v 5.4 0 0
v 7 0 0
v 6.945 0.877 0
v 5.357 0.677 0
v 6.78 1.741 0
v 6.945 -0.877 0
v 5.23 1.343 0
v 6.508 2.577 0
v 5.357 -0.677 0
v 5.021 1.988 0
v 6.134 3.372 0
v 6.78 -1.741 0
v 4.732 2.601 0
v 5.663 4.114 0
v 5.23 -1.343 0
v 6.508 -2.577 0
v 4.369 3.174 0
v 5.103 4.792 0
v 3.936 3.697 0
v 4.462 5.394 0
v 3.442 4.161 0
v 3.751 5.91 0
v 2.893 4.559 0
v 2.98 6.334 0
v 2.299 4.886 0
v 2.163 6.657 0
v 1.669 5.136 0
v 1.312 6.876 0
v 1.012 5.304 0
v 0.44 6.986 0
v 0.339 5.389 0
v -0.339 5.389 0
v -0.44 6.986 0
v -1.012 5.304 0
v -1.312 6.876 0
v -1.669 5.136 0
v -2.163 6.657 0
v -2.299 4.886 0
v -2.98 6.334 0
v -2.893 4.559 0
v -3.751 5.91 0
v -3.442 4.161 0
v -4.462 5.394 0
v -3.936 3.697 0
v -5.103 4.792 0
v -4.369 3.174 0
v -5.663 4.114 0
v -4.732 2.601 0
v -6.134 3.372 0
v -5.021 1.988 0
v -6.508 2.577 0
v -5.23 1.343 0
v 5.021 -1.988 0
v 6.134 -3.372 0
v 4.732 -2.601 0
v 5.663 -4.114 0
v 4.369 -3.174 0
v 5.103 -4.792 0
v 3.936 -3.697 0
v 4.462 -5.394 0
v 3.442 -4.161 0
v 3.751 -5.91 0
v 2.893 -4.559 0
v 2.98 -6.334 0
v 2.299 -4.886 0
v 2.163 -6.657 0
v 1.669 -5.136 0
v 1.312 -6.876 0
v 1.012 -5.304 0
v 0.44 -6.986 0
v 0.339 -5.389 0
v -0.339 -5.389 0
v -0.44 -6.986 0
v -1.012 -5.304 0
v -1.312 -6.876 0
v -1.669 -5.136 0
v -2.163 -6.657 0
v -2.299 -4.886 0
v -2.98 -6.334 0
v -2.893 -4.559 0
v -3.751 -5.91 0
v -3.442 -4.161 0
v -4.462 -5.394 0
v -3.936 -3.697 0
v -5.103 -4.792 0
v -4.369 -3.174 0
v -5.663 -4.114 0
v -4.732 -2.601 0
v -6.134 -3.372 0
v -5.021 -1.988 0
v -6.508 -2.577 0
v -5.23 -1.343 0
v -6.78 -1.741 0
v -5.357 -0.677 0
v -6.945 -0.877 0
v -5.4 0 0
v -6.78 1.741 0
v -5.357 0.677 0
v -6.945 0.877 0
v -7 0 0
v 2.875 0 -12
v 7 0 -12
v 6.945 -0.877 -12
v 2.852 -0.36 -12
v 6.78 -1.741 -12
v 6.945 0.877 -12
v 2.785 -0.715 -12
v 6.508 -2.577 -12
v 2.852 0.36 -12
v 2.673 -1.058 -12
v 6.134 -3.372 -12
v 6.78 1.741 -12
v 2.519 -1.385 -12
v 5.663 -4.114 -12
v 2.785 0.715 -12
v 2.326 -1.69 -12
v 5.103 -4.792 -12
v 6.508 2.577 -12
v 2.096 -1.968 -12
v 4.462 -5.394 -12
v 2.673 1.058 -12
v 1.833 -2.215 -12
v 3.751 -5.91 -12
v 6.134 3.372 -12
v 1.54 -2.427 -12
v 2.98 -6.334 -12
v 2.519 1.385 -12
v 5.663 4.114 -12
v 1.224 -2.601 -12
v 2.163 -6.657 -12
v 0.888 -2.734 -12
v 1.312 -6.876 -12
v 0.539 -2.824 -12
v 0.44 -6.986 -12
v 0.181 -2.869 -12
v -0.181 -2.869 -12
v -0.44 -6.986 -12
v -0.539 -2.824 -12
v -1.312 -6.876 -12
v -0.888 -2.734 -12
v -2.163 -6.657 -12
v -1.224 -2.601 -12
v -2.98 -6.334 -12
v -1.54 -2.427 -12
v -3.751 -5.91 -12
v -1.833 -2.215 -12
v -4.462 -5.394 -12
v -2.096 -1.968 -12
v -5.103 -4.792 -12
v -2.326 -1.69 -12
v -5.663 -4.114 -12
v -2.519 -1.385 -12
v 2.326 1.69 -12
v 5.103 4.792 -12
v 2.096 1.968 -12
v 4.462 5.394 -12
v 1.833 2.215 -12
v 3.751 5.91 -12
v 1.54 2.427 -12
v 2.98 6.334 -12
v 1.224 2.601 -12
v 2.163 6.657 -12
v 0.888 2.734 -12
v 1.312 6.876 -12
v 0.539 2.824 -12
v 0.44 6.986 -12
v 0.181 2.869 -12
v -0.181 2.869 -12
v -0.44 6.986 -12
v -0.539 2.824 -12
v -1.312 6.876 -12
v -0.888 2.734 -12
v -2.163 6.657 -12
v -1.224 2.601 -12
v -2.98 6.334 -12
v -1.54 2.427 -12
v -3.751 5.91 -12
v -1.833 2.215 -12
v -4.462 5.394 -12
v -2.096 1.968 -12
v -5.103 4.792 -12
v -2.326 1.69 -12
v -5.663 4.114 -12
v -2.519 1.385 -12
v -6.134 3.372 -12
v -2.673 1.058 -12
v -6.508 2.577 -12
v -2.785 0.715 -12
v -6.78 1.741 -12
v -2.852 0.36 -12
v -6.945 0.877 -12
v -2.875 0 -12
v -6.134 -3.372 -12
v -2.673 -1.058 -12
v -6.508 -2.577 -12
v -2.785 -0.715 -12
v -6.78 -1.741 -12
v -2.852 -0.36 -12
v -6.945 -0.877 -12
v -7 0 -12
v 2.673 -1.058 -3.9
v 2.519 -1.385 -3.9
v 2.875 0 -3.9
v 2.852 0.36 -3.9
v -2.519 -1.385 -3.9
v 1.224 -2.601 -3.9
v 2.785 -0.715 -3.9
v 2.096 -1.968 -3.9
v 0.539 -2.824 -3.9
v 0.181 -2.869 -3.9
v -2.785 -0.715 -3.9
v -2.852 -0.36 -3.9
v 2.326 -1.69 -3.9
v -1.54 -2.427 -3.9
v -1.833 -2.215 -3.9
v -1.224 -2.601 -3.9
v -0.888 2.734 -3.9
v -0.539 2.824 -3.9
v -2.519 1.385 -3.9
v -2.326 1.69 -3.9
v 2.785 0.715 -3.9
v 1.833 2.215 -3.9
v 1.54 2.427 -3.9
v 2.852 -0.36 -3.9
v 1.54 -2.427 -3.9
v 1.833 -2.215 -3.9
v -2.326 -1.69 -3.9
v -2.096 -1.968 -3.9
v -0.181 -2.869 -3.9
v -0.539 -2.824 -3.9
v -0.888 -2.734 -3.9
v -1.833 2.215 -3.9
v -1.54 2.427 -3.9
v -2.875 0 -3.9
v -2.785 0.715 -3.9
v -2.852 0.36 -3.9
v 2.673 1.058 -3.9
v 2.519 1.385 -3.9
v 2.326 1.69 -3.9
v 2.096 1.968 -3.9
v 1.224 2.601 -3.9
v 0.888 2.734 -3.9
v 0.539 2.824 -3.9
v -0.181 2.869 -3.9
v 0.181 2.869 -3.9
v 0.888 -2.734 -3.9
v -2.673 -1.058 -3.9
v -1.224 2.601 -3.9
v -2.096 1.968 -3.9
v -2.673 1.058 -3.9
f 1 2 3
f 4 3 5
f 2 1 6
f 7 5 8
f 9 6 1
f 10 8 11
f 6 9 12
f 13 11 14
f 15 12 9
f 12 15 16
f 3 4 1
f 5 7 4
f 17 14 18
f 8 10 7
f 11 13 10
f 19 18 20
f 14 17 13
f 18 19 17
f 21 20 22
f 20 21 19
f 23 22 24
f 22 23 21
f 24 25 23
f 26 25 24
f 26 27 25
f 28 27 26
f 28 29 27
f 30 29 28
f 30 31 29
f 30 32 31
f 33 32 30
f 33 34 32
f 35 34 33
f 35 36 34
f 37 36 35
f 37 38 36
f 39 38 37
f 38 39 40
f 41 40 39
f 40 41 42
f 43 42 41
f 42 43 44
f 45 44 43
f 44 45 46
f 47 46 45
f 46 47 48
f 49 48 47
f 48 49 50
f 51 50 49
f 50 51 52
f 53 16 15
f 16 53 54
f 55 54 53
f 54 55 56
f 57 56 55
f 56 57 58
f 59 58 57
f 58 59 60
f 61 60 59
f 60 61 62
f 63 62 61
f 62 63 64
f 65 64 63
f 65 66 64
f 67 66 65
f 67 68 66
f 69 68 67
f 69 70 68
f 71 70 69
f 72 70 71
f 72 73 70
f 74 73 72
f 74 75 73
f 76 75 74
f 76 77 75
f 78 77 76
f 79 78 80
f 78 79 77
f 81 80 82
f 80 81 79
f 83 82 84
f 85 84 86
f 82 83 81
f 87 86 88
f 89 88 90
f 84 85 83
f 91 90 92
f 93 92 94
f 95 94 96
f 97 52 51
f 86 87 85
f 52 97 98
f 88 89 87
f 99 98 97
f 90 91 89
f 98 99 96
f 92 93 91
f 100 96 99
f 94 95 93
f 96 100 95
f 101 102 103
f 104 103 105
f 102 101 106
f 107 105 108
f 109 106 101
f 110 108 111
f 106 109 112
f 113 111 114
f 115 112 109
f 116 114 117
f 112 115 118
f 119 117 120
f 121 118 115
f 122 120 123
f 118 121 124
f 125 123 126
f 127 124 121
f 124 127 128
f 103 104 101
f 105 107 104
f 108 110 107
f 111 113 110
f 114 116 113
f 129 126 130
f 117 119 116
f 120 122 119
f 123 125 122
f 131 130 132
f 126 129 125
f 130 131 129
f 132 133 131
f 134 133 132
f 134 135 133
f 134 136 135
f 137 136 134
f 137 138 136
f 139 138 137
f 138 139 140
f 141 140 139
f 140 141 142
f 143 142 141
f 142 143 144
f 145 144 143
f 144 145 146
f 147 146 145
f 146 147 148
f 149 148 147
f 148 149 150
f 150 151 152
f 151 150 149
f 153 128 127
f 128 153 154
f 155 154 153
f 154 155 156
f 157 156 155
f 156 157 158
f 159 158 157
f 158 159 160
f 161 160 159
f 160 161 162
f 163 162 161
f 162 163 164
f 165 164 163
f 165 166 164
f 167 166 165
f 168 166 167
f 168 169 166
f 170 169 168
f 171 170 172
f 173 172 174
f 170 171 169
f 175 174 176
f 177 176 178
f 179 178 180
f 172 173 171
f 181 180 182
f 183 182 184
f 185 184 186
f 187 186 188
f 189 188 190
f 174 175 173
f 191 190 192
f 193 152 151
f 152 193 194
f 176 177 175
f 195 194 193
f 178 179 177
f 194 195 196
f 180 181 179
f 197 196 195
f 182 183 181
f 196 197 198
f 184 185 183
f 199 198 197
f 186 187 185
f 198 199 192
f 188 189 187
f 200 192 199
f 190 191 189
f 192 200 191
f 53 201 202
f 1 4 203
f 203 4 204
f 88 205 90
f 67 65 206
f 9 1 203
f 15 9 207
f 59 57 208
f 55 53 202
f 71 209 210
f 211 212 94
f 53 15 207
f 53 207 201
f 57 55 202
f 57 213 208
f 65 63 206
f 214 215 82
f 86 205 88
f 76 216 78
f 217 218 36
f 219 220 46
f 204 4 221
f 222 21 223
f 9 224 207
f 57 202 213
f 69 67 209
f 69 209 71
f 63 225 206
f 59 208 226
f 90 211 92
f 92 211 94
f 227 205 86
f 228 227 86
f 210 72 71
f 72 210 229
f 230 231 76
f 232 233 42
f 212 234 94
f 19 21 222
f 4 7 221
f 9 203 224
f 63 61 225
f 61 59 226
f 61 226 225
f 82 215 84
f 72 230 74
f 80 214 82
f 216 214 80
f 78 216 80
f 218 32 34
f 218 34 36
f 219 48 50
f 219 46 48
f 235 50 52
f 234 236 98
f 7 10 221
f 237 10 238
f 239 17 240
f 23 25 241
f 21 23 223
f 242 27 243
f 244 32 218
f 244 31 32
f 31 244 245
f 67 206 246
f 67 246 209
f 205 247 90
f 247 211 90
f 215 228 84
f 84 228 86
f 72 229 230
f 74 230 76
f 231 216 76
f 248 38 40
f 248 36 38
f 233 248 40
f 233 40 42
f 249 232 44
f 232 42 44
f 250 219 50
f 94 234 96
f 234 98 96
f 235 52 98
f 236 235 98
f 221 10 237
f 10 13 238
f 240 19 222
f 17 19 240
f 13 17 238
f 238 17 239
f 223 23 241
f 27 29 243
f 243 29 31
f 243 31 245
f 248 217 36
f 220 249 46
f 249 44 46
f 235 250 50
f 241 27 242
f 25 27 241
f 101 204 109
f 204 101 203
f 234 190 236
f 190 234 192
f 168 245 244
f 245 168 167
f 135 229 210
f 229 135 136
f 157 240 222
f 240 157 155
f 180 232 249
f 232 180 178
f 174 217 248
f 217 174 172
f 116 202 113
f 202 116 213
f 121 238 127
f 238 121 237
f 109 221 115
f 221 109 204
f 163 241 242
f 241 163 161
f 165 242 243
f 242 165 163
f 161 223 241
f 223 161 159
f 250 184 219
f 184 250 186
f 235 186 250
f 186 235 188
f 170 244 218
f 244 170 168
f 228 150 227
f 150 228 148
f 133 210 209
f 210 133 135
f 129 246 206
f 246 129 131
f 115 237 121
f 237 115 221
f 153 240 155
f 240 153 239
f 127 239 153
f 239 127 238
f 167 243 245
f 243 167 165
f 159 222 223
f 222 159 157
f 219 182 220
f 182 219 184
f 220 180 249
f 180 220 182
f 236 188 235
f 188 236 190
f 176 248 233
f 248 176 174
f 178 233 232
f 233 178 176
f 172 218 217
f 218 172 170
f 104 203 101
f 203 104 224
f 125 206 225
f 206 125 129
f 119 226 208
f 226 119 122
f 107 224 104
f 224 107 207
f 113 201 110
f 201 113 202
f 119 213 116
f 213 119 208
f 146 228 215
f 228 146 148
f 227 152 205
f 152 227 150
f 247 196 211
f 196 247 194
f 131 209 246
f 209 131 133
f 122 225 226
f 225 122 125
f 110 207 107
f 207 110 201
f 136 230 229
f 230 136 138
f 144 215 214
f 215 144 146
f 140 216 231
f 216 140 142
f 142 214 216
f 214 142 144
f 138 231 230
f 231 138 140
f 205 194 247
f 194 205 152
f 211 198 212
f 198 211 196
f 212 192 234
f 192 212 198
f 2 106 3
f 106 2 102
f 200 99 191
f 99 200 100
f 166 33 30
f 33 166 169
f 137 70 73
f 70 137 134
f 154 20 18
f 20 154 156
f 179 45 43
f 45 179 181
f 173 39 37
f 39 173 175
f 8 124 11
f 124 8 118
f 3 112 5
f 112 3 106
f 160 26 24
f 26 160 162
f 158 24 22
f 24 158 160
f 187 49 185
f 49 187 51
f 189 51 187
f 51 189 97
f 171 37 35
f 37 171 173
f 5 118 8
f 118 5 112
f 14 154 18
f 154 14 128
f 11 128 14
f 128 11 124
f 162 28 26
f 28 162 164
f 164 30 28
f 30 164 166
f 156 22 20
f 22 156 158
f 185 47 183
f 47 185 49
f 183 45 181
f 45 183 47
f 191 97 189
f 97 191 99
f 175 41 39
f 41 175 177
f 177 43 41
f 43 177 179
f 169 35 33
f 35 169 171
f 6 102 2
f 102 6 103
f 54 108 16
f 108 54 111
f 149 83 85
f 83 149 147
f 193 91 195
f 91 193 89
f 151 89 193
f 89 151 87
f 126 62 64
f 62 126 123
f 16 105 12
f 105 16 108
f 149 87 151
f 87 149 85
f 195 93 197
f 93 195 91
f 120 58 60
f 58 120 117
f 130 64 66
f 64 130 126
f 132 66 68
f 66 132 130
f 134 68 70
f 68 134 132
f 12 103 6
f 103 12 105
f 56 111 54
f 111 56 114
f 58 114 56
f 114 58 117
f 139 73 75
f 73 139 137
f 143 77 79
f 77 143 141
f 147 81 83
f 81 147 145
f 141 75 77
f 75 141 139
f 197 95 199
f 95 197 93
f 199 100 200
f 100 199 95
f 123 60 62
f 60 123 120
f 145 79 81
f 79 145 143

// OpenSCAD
$fn = 50;


difference() {
	union() {
		translate(v = [0, 0, -12.0000000000]) {
			cylinder(h = 12, r = 7.0000000000);
		}
	}
	union() {
		translate(v = [0, 0, 0]) {
			rotate(a = [0, 0, 0]) {
				difference() {
					union() {
						#translate(v = [0, 0, -12.0000000000]) {
							cylinder(h = 12, r = 2.6000000000);
						}
						#translate(v = [0, 0, -3.9000000000]) {
							cylinder(h = 3.9000000000, r = 7.0000000000, r1 = 2.8750000000, r2 = 5.4000000000);
						}
						#translate(v = [0, 0, -12.0000000000]) {
							cylinder(h = 12, r = 2.8750000000);
						}
						#translate(v = [0, 0, -12.0000000000]) {
							cylinder(h = 12, r = 2.6000000000);
						}
					}
					union();
				}
			}
		}
	}
}
